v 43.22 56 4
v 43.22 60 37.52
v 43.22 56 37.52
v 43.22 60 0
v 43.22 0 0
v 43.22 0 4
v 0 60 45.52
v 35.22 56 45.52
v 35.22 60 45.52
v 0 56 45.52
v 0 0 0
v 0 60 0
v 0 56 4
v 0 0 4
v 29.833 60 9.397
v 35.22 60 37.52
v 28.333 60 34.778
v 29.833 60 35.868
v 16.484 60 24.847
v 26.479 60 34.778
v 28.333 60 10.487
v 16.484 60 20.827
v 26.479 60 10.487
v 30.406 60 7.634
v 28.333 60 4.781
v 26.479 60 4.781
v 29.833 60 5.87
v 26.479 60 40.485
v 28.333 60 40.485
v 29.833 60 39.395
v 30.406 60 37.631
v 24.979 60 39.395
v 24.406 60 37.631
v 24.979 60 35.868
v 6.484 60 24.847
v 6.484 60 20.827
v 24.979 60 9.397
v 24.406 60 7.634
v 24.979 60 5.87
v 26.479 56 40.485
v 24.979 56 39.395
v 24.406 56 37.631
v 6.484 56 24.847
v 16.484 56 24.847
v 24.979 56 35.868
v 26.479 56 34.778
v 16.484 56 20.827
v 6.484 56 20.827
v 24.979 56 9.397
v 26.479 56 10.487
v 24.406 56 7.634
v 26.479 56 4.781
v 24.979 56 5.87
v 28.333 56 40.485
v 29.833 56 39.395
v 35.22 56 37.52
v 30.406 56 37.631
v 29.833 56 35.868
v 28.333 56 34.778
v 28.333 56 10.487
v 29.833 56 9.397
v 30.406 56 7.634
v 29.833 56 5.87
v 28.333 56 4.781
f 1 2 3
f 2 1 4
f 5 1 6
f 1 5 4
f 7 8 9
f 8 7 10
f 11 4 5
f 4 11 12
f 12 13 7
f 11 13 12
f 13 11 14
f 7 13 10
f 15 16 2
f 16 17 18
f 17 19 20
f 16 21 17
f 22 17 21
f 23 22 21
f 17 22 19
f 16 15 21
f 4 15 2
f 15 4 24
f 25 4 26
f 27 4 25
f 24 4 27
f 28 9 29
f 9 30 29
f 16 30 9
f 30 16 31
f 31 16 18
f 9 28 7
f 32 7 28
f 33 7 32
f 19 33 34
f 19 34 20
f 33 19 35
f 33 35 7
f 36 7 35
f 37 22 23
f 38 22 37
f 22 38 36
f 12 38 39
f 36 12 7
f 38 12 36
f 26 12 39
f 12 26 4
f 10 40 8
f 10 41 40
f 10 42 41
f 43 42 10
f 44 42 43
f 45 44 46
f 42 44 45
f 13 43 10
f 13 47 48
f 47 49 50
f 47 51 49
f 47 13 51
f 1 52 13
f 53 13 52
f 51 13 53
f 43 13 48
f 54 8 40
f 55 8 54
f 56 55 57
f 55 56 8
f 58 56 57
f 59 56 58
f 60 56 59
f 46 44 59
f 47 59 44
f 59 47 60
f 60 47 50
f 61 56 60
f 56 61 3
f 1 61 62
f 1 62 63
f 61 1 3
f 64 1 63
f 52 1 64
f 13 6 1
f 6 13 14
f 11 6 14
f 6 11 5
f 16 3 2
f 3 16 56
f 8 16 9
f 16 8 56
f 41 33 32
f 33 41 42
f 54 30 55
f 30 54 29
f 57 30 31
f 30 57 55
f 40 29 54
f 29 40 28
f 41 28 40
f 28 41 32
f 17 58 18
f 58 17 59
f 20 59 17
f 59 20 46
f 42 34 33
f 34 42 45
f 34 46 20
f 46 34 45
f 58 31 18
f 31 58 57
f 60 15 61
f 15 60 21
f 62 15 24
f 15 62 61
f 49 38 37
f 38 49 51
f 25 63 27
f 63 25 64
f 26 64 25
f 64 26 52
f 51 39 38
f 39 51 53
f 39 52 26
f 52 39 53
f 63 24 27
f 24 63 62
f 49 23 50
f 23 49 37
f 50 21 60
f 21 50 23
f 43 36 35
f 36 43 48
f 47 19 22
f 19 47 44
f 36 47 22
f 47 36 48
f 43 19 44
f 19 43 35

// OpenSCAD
/* doodle-meta {"version":1,"parameters":{"width":{"label":"Overall width","description":"Changes the body width","unit":"mm","feature":"body_width"},"depth":{"label":"Overall depth","description":"Changes the body depth","unit":"mm","feature":"body_depth"},"height":{"label":"Overall height","description":"Changes the body height","unit":"mm","feature":"body_height"},"wall_thickness":{"label":"Wall thickness","description":"Thickness of the vertical wall and base plate","unit":"mm","feature":"wall_thickness"},"hole_diameter":{"label":"Hole diameter","description":"Diameter of the circular mounting holes","unit":"mm","feature":"holes"},"slot_width":{"label":"Slot width","description":"Width of the rectangular slot","unit":"mm","feature":"slot"},"slot_height":{"label":"Slot height","description":"Height of the rectangular slot","unit":"mm","feature":"slot"}},"features":{"body_width":{"kind":"dimension","axis":"x","label":"Overall width"},"body_depth":{"kind":"dimension","axis":"y","label":"Overall depth"},"body_height":{"kind":"dimension","axis":"z","label":"Overall height"},"wall_thickness":{"kind":"region","label":"Wall thickness","min":[0,0,0],"max":[{"parameter":"width","scale":0.1,"offset":0},{"parameter":"depth","scale":0.1,"offset":0},{"parameter":"height","scale":0.1,"offset":0}]},"holes":{"kind":"region","label":"Mounting holes","min":[{"parameter":"width","scale":0.5,"offset":0},{"parameter":"depth","scale":0.5,"offset":0},0],"max":[{"parameter":"width","scale":0.9,"offset":0},{"parameter":"depth","scale":0.9,"offset":0},{"parameter":"height","scale":0.9,"offset":0}]},"slot":{"kind":"region","label":"Rectangular slot","min":[{"parameter":"width","scale":0.1,"offset":0},{"parameter":"depth","scale":0.1,"offset":0},{"parameter":"height","scale":0.4,"offset":0}],"max":[{"parameter":"width","scale":0.4,"offset":0},{"parameter":"depth","scale":0.9,"offset":0},{"parameter":"height","scale":0.6,"offset":0}]}}} */

// Top-level parameters (allowlist)
width = 43.22;
depth = 60.0;
height = 45.52;
wall_thickness = 4.0;
hole_diameter = 6.0;
slot_width = 10.0;
slot_height = 6.0;

// Derived sizes (not in allowlist)
eps = 0.01;
base_height = wall_thickness;
vertical_height = height - base_height;
chamfer_size = 8.0;

// Hole positions (derived from view measurements)
hole_top_x = width * 0.6341;
hole_top_z = height * (1 - 0.1733);
hole_bottom_x = width * 0.6341;
hole_bottom_z = height * (1 - 0.8323);
slot_center_x = width * 0.2657;
slot_center_z = height * (1 - 0.4983);

// Main design
difference() {
    // Positive body: L-bracket
    union() {
        // Vertical wall (back part)
        translate([0, depth - wall_thickness, 0])
            cube([width, wall_thickness, height]);
        
        // Base plate (bottom part)
        cube([width, depth, base_height]);
        
        // Mounting tab on left side of vertical face
        translate([0, depth - wall_thickness, height * 0.5])
            cube([wall_thickness, wall_thickness, height * 0.3]);
    }
    
    // Chamfer top-right corner of vertical face
    translate([width - chamfer_size, depth - wall_thickness - eps, height - chamfer_size])
        rotate([0, 0, 0])
            cube([chamfer_size + eps, wall_thickness + 2*eps, chamfer_size + eps]);
    
    // Through holes in vertical wall (cut along Y)
    // Top hole
    translate([hole_top_x, depth - wall_thickness/2, hole_top_z])
        rotate([90, 0, 0])
            cylinder(d=hole_diameter, h=wall_thickness + 2*eps, center=true);
    
    // Bottom hole
    translate([hole_bottom_x, depth - wall_thickness/2, hole_bottom_z])
        rotate([90, 0, 0])
            cylinder(d=hole_diameter, h=wall_thickness + 2*eps, center=true);
    
    // Rectangular slot in vertical wall (cut along Y)
    translate([slot_center_x, depth - wall_thickness/2, slot_center_z])
        rotate([90, 0, 0])
            cube([slot_width, wall_thickness + 2*eps, slot_height], center=true);
}
